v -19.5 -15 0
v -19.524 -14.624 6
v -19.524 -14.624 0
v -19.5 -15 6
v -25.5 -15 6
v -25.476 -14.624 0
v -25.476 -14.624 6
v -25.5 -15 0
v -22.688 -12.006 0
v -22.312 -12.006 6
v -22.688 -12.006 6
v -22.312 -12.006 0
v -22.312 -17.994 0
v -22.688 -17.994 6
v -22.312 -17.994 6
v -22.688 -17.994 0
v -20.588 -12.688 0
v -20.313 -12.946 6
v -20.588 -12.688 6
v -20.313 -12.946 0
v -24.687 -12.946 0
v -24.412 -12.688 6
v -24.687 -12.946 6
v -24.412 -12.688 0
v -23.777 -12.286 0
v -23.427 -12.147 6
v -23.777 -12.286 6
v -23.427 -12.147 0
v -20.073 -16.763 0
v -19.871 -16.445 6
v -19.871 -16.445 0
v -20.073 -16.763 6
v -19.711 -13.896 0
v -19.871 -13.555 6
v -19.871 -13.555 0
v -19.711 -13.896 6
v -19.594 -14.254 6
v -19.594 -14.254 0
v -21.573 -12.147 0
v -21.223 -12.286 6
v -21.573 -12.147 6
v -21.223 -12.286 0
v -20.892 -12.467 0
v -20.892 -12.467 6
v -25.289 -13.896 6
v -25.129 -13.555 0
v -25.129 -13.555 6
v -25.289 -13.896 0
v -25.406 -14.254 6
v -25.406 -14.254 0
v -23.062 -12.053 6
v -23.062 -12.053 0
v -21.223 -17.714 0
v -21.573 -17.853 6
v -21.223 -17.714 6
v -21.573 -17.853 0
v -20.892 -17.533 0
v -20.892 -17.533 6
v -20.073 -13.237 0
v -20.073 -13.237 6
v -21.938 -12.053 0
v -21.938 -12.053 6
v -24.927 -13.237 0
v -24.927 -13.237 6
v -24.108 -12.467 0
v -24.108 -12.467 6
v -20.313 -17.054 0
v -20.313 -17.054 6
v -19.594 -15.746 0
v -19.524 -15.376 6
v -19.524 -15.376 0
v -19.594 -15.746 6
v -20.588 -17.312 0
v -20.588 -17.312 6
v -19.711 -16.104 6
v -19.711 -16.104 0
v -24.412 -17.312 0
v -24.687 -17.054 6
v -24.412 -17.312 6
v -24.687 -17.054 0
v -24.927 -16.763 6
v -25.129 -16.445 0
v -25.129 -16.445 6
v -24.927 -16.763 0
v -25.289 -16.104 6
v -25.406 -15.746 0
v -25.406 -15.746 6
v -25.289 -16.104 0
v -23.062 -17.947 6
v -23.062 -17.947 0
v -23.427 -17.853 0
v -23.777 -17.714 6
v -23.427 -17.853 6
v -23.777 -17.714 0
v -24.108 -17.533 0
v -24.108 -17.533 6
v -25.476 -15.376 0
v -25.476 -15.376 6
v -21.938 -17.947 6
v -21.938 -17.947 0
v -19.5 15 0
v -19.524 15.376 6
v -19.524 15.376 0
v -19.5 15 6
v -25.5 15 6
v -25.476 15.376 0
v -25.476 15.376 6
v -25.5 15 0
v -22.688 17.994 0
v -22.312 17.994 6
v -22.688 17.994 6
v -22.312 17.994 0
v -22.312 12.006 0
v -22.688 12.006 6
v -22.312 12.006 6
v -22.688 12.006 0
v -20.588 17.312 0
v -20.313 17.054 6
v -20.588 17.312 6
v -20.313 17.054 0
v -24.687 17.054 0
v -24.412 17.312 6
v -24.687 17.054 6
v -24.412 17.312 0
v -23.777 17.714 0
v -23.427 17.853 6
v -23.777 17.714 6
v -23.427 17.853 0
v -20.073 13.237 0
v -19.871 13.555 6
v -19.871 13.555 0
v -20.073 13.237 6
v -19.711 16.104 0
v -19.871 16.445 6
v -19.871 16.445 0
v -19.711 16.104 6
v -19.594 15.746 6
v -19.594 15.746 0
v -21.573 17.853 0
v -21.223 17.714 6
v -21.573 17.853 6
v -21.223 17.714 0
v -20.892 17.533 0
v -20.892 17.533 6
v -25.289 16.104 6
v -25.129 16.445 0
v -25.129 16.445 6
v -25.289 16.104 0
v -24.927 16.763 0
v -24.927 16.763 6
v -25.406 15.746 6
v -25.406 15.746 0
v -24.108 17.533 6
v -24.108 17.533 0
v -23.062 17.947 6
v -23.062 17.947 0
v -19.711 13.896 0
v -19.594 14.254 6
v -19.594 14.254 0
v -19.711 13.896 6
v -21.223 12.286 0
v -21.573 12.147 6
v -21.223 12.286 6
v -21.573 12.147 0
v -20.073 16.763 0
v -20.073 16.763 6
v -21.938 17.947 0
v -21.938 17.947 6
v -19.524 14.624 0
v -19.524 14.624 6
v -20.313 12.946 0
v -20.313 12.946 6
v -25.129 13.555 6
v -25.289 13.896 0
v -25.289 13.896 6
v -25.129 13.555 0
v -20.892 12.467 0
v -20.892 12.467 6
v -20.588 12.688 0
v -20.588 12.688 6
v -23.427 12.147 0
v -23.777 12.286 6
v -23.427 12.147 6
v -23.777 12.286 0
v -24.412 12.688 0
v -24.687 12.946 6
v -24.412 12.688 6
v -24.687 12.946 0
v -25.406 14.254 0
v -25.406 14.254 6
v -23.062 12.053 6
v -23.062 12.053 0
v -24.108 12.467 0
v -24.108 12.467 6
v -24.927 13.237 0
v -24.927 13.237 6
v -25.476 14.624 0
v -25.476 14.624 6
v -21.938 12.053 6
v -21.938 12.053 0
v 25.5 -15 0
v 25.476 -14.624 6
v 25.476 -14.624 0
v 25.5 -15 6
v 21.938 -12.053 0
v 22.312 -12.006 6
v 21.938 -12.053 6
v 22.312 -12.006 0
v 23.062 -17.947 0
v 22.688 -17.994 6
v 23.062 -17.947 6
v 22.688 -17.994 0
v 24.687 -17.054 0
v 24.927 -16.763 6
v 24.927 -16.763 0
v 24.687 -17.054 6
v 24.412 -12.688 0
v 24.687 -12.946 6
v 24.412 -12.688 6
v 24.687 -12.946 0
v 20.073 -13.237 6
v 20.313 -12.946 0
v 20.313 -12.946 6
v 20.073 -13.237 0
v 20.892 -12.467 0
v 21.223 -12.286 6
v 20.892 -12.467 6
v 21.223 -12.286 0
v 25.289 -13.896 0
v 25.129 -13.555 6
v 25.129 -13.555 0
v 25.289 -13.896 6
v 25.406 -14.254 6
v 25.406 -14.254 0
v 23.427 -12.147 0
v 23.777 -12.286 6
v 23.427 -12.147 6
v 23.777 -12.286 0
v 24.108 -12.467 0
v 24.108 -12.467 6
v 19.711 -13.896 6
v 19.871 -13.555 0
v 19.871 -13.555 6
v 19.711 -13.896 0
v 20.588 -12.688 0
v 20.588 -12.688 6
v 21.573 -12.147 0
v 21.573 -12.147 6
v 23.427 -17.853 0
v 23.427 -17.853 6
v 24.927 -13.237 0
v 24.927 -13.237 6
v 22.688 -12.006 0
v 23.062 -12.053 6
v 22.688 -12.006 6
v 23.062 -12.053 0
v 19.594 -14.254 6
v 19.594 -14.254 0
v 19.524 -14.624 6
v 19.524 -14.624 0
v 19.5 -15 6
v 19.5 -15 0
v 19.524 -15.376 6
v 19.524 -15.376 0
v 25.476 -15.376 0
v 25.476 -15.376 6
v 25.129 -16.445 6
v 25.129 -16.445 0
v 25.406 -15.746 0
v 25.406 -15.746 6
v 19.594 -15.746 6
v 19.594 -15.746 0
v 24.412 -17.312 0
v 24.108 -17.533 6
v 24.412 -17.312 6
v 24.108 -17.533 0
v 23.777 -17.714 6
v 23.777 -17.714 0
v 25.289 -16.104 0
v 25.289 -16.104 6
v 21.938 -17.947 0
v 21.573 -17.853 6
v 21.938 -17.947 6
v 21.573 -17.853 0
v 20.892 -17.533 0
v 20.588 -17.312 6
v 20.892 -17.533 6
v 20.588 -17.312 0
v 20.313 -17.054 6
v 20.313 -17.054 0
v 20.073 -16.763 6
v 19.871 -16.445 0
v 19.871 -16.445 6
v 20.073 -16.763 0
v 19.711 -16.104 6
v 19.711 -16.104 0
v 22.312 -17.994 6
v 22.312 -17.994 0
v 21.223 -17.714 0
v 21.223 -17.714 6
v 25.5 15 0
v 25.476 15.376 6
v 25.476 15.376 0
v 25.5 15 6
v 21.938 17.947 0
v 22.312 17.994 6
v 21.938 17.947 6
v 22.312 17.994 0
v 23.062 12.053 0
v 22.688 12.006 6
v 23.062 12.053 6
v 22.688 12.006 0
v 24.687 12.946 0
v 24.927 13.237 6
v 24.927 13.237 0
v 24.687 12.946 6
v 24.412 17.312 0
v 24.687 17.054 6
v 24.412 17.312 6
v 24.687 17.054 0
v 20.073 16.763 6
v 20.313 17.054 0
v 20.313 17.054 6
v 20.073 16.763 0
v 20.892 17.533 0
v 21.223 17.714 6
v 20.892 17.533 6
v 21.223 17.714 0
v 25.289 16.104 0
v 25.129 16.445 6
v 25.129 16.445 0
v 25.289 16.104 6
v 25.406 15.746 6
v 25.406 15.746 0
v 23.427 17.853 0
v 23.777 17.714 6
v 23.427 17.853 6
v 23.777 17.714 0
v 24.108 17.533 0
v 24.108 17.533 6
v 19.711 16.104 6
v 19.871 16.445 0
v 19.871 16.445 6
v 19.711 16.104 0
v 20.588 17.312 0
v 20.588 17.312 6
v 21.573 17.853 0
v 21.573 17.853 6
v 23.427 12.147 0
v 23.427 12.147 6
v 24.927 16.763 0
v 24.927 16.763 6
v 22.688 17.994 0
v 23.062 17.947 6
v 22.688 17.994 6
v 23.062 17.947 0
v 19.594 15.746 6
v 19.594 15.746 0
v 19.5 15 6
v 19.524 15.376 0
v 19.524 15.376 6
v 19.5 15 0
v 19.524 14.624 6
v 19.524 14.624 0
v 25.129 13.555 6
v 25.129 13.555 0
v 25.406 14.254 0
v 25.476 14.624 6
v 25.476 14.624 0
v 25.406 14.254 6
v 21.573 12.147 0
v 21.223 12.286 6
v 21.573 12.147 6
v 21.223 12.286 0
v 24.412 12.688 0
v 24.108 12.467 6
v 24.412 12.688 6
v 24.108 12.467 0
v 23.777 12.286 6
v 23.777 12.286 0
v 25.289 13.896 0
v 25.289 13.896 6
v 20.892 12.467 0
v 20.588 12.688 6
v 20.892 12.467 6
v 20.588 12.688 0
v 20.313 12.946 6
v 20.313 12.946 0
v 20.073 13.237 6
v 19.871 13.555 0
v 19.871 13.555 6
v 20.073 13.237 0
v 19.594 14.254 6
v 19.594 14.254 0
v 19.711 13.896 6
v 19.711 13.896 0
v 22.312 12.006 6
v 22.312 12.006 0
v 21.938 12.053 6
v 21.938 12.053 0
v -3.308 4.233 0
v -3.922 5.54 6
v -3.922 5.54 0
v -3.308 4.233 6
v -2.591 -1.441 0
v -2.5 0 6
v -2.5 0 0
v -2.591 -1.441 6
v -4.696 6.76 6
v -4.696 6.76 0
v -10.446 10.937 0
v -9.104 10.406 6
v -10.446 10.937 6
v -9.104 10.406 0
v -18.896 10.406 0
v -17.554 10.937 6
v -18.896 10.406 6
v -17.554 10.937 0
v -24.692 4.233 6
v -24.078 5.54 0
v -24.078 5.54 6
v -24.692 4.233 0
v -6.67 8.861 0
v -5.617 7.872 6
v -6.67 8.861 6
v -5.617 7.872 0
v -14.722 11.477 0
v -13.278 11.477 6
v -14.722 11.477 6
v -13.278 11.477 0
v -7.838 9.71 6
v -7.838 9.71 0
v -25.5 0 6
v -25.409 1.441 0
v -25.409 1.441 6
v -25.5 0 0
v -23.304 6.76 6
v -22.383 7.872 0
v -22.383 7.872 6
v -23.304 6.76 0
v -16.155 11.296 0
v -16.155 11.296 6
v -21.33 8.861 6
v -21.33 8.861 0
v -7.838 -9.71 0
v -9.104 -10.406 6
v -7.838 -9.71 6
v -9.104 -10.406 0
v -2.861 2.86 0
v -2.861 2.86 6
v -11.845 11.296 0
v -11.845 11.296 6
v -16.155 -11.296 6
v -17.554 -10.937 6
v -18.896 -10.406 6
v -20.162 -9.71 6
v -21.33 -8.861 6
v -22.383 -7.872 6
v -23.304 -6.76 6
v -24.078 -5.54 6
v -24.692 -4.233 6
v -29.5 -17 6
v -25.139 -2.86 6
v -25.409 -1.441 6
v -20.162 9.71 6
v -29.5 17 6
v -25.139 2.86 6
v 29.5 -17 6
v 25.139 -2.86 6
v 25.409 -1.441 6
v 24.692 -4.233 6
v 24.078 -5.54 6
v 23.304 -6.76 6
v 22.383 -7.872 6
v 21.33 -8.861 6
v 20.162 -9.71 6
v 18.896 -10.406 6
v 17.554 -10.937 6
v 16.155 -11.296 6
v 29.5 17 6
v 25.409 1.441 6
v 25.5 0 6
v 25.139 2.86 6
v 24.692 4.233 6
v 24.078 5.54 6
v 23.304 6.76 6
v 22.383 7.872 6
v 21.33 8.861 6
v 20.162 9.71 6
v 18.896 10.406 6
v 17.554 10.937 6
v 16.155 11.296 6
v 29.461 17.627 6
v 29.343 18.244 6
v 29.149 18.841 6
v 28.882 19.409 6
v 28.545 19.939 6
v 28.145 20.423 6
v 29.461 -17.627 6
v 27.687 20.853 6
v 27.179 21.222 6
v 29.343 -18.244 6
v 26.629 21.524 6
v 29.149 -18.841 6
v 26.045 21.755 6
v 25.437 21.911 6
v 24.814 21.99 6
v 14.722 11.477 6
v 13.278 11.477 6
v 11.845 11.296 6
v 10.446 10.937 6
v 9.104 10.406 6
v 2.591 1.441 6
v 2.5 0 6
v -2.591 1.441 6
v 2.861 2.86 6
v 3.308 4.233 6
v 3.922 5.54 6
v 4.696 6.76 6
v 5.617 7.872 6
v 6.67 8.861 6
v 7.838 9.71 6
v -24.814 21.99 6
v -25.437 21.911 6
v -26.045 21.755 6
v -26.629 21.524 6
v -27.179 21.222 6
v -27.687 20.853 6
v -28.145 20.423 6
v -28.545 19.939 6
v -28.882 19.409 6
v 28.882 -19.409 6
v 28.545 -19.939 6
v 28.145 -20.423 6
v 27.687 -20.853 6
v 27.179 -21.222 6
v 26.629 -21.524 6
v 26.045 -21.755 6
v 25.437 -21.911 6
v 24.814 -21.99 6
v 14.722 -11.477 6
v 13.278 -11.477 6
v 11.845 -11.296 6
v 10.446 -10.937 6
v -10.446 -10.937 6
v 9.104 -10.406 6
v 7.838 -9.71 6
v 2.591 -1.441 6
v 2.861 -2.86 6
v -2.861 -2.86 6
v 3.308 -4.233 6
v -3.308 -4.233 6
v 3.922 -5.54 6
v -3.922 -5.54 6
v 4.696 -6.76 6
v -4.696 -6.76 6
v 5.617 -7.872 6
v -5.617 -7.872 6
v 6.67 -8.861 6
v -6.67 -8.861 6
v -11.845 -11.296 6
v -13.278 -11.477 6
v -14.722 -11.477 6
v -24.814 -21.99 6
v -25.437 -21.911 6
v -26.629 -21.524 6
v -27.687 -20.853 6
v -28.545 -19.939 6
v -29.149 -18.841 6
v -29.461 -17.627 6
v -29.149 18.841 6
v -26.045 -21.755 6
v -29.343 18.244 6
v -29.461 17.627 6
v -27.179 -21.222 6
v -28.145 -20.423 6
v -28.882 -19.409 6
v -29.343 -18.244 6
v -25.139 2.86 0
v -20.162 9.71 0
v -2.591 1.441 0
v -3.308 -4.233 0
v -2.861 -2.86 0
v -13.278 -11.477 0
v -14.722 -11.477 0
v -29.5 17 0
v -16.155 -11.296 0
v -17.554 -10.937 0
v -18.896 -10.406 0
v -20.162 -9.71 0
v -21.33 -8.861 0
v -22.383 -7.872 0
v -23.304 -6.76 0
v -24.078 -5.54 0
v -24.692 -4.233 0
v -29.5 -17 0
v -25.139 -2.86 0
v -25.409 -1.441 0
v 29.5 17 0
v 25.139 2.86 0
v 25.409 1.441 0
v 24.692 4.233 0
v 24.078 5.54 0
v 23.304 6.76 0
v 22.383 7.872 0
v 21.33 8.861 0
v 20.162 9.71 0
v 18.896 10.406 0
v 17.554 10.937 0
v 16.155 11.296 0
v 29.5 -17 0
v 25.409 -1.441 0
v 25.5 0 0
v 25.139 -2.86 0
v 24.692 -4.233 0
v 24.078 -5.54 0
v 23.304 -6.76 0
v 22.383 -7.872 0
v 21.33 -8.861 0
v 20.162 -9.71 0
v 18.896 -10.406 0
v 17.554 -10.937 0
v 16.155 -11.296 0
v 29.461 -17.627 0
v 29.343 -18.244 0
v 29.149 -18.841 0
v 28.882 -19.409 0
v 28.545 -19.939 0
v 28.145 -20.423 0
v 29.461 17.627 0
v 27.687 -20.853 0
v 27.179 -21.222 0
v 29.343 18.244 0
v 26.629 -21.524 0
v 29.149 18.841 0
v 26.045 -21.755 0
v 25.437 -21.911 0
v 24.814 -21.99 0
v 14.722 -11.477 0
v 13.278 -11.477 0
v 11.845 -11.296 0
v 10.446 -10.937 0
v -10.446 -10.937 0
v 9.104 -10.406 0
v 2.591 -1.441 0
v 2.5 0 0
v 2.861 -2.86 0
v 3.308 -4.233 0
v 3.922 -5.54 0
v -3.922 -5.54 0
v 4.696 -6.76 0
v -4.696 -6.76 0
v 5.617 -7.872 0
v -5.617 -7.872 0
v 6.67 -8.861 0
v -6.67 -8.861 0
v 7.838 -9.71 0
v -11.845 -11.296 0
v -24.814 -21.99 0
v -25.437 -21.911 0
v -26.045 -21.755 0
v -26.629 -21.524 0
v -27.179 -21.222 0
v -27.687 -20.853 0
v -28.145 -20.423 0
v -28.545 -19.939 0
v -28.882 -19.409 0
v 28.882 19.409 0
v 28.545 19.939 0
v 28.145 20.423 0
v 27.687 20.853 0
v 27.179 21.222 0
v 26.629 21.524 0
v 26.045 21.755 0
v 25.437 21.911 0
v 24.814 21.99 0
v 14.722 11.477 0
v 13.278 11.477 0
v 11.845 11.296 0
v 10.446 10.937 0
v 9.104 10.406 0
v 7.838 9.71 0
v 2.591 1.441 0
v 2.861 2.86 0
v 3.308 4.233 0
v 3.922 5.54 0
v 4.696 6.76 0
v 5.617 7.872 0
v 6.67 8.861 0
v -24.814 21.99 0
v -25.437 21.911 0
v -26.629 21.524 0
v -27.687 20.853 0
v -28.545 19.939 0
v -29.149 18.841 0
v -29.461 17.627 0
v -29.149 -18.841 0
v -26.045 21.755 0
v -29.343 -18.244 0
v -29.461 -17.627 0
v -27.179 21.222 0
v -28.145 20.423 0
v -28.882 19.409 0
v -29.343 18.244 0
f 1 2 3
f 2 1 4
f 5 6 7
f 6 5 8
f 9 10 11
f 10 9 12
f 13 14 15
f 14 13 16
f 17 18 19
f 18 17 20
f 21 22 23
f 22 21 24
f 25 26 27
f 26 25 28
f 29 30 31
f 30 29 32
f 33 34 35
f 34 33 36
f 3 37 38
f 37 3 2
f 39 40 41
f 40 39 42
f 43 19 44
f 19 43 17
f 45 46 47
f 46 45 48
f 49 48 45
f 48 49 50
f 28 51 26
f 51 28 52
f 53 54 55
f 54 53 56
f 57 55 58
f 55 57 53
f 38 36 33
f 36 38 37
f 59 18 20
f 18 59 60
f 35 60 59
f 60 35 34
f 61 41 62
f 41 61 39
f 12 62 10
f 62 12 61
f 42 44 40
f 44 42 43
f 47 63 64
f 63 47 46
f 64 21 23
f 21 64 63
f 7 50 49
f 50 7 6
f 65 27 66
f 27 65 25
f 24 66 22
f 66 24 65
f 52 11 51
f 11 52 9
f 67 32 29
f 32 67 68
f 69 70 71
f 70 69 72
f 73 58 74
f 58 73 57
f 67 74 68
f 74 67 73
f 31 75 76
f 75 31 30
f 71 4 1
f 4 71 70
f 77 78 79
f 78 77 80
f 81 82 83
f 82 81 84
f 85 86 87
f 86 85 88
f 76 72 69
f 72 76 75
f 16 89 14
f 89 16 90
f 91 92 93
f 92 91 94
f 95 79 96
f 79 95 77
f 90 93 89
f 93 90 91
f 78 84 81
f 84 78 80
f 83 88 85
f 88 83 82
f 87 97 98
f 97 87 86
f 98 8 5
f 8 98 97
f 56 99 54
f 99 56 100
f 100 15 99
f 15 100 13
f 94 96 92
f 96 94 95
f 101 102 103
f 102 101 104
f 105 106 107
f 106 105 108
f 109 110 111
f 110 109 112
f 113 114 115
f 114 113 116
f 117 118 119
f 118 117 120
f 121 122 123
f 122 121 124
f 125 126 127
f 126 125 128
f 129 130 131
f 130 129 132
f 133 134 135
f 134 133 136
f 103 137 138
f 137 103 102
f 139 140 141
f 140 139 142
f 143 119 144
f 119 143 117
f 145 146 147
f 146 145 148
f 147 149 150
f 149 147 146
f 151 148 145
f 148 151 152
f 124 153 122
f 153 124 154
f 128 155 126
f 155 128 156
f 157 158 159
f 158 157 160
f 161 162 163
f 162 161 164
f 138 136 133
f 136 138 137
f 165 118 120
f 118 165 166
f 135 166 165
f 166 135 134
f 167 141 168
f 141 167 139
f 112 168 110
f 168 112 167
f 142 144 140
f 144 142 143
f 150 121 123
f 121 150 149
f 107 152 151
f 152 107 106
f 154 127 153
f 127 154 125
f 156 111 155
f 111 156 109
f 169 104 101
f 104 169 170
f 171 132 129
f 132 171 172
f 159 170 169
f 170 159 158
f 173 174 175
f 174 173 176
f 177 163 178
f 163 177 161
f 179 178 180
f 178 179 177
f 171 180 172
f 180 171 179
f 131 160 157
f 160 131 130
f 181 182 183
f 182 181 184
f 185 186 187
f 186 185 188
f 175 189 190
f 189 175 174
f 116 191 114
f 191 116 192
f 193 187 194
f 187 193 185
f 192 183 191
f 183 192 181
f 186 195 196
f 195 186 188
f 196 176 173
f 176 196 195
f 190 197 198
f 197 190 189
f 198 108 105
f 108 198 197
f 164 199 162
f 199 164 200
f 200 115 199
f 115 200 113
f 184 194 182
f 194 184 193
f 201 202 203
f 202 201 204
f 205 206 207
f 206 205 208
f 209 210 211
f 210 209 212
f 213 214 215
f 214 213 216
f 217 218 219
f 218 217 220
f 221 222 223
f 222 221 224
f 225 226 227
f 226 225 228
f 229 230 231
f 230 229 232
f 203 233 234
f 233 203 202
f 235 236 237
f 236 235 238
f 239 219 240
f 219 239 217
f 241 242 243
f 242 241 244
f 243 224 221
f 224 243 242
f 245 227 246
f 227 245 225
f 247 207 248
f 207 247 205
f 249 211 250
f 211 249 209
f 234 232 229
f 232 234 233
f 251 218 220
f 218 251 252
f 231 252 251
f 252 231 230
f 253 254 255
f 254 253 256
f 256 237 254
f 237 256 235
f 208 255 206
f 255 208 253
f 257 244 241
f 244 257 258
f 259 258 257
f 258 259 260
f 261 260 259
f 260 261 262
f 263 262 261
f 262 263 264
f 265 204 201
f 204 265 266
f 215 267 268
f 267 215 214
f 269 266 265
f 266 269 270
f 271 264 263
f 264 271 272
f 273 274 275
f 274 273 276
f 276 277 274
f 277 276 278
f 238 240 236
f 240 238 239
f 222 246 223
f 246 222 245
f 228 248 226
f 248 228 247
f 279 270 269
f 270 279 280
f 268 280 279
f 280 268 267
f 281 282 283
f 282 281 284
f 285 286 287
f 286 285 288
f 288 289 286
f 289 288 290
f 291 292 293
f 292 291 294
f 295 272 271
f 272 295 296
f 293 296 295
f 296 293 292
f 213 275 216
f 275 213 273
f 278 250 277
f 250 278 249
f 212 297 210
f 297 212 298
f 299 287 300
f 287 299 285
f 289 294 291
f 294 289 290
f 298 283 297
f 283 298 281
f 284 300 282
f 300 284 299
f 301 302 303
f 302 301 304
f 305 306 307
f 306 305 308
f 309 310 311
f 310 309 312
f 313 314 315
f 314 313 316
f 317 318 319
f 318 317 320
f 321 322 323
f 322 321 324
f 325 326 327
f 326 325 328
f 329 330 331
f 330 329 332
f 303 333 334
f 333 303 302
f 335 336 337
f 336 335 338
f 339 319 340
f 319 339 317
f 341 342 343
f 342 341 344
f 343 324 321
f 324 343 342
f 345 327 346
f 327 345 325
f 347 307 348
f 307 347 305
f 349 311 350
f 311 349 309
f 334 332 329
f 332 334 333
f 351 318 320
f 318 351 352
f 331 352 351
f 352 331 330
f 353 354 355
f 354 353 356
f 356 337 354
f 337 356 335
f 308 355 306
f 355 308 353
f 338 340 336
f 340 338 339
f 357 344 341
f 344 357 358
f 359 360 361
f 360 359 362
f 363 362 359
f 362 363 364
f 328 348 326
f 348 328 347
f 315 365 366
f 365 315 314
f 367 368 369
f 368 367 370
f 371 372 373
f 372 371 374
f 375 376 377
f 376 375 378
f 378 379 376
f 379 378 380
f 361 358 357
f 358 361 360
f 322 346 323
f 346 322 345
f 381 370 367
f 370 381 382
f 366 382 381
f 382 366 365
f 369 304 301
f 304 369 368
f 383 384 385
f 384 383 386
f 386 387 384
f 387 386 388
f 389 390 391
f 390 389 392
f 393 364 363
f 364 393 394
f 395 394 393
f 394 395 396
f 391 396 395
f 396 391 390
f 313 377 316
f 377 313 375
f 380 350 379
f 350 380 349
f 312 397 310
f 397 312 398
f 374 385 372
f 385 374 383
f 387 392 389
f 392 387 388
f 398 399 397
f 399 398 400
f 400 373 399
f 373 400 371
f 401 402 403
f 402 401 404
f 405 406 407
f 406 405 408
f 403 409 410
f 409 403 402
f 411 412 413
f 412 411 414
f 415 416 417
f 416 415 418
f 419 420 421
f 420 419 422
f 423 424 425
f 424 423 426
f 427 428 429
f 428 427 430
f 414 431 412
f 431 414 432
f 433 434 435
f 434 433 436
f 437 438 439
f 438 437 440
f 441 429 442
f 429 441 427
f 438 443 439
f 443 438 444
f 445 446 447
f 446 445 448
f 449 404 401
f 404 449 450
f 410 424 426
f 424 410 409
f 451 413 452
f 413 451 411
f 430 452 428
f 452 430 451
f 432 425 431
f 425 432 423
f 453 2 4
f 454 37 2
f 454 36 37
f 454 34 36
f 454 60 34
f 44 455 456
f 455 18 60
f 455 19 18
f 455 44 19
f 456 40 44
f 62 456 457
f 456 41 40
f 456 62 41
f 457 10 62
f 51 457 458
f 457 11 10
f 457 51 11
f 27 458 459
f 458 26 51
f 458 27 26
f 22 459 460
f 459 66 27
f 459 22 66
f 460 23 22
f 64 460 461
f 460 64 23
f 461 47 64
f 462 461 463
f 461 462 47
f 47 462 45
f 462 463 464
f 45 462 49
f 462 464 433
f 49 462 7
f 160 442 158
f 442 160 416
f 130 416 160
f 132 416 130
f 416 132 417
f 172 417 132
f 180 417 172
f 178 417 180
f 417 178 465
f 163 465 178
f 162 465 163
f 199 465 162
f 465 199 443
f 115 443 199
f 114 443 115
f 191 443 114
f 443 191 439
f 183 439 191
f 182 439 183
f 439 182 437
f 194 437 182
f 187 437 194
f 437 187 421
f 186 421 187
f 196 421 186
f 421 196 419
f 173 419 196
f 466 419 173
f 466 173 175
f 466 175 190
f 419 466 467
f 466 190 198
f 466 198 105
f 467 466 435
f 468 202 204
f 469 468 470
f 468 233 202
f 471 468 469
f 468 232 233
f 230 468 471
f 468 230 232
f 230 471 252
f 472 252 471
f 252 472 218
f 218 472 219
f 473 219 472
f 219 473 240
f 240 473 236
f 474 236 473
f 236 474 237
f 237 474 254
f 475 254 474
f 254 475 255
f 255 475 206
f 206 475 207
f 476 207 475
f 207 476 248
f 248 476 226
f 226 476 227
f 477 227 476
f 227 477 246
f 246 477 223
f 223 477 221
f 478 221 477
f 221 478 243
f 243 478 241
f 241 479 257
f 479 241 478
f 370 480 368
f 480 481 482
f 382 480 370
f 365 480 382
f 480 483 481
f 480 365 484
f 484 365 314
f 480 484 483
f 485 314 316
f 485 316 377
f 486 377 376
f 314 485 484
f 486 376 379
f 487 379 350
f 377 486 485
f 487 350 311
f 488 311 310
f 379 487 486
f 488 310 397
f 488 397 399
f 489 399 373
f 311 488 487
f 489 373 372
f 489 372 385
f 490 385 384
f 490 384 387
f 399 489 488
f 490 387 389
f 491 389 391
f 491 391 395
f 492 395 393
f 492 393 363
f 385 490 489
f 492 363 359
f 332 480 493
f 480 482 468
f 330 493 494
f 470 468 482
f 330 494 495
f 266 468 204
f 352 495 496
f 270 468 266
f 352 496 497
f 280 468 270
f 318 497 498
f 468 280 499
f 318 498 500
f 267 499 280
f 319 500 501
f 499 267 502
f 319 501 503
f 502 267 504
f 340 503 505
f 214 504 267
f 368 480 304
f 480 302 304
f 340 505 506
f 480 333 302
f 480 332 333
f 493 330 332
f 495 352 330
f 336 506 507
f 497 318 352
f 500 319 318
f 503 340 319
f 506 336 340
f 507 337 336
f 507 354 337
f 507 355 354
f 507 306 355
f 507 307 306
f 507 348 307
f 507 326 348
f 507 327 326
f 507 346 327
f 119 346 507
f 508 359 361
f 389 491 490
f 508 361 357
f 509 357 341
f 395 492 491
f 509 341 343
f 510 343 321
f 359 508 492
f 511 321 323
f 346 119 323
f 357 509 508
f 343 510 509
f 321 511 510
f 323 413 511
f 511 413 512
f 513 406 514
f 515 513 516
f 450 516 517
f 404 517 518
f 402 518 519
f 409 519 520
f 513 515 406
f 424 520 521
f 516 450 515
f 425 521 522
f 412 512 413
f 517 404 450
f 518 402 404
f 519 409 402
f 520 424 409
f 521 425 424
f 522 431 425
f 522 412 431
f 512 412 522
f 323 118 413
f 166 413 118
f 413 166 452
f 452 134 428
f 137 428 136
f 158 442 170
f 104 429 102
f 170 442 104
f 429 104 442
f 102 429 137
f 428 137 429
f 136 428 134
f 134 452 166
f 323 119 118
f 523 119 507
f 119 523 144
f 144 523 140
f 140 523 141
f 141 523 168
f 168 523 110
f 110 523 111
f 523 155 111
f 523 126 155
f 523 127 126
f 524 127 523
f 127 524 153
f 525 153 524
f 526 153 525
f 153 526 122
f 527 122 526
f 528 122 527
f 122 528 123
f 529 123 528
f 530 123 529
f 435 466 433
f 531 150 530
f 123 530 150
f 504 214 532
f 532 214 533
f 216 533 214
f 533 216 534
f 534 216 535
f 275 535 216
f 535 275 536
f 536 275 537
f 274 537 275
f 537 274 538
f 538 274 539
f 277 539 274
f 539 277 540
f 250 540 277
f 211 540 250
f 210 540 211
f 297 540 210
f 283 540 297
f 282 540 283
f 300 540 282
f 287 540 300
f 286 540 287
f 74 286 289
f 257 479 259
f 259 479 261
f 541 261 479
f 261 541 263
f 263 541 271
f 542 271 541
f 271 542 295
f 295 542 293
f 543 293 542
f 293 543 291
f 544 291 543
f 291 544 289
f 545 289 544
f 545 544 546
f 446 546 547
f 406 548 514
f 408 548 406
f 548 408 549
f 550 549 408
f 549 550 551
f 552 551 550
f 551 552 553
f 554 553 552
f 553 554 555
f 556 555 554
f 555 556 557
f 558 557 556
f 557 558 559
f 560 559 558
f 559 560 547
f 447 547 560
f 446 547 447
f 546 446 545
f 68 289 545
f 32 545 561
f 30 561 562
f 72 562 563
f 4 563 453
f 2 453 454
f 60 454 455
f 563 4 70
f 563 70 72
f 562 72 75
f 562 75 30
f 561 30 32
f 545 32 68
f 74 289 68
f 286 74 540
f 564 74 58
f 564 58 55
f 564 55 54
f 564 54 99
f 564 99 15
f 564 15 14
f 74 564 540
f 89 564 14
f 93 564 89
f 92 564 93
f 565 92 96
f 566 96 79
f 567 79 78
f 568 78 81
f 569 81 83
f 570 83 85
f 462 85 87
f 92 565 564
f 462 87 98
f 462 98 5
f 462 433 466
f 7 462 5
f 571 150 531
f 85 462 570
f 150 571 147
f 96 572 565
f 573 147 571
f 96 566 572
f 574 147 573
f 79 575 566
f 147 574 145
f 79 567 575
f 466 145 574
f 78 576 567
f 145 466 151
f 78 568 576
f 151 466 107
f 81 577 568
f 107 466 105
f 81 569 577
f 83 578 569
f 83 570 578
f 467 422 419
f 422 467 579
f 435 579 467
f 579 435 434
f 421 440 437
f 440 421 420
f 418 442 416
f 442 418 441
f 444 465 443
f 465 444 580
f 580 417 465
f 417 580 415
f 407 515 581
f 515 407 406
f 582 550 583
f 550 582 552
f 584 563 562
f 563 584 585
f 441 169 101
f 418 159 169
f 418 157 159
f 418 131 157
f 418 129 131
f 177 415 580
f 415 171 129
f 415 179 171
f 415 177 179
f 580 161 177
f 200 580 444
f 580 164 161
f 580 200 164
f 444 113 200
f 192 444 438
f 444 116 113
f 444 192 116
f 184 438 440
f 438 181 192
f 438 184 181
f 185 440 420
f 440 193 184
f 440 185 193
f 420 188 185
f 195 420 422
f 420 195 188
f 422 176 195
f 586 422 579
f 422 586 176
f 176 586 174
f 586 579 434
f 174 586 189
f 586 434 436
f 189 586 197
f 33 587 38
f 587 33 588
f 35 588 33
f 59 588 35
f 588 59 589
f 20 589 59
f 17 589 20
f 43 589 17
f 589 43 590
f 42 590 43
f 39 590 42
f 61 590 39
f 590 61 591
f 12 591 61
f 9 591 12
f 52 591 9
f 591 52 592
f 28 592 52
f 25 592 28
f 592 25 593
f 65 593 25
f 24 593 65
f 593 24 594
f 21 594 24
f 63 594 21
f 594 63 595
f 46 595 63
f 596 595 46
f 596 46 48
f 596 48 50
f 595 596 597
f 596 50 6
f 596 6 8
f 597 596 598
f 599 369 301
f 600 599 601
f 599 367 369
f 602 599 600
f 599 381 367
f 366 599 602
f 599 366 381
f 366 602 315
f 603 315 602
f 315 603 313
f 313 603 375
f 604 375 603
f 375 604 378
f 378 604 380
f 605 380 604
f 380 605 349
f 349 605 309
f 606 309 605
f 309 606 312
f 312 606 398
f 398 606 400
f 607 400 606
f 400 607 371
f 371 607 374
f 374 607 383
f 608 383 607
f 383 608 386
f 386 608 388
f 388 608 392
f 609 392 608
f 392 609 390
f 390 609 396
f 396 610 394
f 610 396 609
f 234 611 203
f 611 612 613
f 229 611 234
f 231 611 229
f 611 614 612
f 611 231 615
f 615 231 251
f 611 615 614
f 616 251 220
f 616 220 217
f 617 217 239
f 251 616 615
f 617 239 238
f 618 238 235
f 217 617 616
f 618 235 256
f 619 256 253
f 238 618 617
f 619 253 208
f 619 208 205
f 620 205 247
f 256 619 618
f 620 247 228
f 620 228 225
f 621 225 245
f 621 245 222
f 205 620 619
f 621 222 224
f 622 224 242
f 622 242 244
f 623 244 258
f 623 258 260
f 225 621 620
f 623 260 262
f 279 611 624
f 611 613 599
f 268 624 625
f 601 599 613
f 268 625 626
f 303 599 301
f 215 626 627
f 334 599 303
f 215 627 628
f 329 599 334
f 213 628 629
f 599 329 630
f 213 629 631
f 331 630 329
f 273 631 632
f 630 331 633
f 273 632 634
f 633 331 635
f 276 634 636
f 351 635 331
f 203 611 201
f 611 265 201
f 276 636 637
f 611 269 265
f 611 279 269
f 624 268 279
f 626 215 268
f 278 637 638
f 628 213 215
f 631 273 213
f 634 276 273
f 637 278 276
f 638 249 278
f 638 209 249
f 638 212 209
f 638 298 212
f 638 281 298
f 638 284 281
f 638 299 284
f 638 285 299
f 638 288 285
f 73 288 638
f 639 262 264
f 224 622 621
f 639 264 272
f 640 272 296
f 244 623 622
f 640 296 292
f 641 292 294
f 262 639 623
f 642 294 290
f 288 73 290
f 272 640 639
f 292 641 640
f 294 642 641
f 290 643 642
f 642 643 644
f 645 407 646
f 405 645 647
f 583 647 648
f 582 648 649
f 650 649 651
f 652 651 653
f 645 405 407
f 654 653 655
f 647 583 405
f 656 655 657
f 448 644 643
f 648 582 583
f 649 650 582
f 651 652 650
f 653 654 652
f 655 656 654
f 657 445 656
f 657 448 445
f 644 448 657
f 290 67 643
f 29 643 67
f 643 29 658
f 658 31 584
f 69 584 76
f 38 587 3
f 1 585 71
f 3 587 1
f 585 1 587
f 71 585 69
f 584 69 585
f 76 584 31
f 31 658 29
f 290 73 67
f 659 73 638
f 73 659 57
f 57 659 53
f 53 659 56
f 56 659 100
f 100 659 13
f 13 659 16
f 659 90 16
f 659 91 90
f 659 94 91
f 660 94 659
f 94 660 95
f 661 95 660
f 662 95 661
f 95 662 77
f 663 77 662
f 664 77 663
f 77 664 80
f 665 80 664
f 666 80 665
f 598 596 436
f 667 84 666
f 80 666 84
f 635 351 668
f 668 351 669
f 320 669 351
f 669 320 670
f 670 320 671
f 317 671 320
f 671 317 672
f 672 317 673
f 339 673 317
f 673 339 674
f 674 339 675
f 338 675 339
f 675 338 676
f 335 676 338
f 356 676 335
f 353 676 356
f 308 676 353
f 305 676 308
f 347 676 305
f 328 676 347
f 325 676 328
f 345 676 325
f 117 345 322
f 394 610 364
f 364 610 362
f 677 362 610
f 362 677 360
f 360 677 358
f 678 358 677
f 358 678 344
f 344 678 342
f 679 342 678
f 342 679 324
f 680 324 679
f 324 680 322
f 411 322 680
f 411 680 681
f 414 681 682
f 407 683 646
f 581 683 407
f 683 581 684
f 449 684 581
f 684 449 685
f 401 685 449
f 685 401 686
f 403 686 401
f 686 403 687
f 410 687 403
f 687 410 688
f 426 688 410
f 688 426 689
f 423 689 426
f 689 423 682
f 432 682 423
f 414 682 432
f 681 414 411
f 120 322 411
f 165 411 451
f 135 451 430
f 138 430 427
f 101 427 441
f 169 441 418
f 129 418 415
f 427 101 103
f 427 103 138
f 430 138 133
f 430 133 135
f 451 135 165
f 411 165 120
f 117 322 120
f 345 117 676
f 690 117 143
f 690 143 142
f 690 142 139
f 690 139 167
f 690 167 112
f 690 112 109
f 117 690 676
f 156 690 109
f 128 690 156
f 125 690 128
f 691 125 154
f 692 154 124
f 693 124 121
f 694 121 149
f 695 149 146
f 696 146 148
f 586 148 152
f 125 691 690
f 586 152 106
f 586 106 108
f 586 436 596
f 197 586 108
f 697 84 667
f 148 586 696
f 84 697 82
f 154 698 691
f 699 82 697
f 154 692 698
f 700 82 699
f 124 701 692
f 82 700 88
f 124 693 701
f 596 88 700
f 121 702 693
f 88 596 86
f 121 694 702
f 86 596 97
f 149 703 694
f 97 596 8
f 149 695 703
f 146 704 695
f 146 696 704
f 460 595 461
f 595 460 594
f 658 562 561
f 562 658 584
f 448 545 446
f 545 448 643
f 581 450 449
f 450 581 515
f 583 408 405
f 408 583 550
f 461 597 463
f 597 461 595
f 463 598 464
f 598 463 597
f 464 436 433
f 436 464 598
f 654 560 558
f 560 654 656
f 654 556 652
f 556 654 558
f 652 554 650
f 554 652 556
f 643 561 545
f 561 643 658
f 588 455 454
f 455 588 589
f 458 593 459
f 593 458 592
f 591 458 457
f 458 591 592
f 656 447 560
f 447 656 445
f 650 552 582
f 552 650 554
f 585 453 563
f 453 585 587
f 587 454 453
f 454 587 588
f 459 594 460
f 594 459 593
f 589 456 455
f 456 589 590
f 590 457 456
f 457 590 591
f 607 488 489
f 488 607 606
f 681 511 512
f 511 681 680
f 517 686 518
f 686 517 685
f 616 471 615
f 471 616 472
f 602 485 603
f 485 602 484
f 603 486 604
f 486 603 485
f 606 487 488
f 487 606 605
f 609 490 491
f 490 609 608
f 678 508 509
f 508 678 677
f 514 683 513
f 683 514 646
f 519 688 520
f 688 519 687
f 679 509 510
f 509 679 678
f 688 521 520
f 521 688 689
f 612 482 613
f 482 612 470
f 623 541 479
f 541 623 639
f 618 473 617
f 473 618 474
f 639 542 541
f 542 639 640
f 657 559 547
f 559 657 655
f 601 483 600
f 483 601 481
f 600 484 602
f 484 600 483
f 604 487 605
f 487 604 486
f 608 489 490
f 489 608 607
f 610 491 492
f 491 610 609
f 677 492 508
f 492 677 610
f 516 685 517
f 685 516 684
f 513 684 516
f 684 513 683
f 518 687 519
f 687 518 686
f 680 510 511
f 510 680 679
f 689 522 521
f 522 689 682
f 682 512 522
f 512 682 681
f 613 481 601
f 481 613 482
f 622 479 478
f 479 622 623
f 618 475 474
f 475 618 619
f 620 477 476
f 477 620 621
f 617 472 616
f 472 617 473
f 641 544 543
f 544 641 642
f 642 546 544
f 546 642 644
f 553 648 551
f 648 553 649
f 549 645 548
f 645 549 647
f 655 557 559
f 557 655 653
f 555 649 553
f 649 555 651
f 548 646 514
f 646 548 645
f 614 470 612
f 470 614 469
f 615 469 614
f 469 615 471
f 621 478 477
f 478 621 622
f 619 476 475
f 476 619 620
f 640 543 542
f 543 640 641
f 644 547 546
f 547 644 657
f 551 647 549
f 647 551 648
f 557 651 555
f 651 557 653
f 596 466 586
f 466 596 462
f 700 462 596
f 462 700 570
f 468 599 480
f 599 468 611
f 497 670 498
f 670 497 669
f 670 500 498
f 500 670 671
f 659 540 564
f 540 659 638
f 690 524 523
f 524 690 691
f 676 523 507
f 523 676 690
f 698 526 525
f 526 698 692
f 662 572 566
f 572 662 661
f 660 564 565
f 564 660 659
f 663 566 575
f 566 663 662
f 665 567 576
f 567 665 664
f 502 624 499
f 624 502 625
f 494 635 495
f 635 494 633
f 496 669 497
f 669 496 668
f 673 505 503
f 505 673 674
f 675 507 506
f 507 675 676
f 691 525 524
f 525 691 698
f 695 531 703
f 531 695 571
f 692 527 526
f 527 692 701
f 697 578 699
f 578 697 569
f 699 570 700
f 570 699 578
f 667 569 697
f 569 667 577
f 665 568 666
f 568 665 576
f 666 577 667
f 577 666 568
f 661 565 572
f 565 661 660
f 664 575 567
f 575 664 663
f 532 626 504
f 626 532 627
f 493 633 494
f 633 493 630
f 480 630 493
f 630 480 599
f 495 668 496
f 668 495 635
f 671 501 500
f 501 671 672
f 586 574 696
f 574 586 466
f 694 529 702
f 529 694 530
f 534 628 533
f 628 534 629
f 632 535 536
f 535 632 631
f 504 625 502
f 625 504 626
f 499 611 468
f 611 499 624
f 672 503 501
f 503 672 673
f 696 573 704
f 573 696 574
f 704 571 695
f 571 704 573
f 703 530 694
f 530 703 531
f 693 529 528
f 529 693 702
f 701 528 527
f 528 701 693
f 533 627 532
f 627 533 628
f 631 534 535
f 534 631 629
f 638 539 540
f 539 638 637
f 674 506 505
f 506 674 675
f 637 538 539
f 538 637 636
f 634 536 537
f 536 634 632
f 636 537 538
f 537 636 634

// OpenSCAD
$fn = 50;


difference() {
	union() {
		hull() {
			translate(v = [-24.5000000000, 17.0000000000, 0]) {
				cylinder(h = 6, r = 5);
			}
			translate(v = [24.5000000000, 17.0000000000, 0]) {
				cylinder(h = 6, r = 5);
			}
			translate(v = [-24.5000000000, -17.0000000000, 0]) {
				cylinder(h = 6, r = 5);
			}
			translate(v = [24.5000000000, -17.0000000000, 0]) {
				cylinder(h = 6, r = 5);
			}
		}
	}
	union() {
		#translate(v = [-22.5000000000, -15.0000000000, -100.0000000000]) {
			cylinder(h = 200, r = 3.0000000000);
		}
		#translate(v = [-22.5000000000, 15.0000000000, -100.0000000000]) {
			cylinder(h = 200, r = 3.0000000000);
		}
		#translate(v = [22.5000000000, -15.0000000000, -100.0000000000]) {
			cylinder(h = 200, r = 3.0000000000);
		}
		#translate(v = [22.5000000000, 15.0000000000, -100.0000000000]) {
			cylinder(h = 200, r = 3.0000000000);
		}
		#translate(v = [-14.0000000000, 0, 0]) {
			cylinder(h = 6, r = 11.5000000000);
		}
		#translate(v = [14.0000000000, 0, 0]) {
			cylinder(h = 6, r = 11.5000000000);
		}
	}
}
